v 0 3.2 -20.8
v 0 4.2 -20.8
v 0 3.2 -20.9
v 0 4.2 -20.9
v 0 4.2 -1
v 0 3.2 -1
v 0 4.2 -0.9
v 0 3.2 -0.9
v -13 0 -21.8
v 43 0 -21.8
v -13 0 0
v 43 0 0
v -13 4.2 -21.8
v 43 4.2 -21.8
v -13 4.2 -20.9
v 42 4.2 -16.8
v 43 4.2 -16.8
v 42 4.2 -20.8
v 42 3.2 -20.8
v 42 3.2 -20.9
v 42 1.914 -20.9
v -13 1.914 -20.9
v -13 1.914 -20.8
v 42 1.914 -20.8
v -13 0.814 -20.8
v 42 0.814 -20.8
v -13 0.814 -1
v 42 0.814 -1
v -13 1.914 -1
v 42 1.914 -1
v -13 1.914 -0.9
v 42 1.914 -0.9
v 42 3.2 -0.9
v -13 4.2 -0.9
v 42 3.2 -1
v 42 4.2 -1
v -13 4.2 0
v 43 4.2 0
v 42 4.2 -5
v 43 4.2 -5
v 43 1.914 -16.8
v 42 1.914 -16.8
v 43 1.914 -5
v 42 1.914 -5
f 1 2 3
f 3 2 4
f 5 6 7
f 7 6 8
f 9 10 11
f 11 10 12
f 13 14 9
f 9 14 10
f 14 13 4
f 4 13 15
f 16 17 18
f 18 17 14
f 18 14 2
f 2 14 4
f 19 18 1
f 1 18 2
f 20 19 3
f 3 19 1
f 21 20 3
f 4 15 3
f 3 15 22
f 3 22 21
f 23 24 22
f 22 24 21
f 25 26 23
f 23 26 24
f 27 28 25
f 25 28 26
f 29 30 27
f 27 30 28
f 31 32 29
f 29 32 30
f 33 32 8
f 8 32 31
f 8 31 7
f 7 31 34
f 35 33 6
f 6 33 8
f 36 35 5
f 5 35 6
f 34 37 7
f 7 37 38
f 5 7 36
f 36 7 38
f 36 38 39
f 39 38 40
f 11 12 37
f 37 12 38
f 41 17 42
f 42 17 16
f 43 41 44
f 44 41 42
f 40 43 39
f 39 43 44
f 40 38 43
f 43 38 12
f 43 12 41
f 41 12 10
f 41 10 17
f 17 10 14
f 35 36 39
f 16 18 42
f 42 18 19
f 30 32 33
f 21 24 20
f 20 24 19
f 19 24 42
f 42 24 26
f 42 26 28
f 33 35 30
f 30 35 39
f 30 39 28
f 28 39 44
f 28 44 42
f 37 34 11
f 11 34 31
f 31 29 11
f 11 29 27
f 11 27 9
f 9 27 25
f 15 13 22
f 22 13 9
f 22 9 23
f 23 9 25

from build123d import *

# Parameters (mm, degrees)
BOSS_EXTRUDE1_DEPTH = 42
BOSS_EXTRUDE2_DEPTH = 1
BOSS_EXTRUDE3_DEPTH = 13


with BuildPart() as part:
    # Sketch1 → Boss-Extrude1 (new body)
    with BuildSketch(Plane(origin=(0, 0, 0), x_dir=(0, 0, -1), z_dir=(1, 0, 0))):
        Polygon((0, 4.2), (0, 0), (10.9, 0), (10.9, 0.81375), (1, 0.81375), (1, 1.91375), (0.9, 1.91375), (0.9, 3.2), (1, 3.2), (1, 4.2), align=None)
        Polygon((10.9, 0.81375), (10.9, 0), (21.8, 0), (21.8, 4.2), (20.8, 4.2), (20.8, 3.2), (20.9, 3.2), (20.9, 1.91375), (20.8, 1.91375), (20.8, 0.81375), align=None)
    extrude(amount=BOSS_EXTRUDE1_DEPTH)

    # Sketch2 → Boss-Extrude2 (add)
    with BuildSketch(Plane(origin=(42, 0, 0), x_dir=(0, 0, -1), z_dir=(1, 0, 0))):
        Polygon((0, 0), (21.8, 0), (21.8, 4.2), (16.8, 4.2), (16.8, 1.91375), (5, 1.91375), (5, 4.2), (0, 4.2), align=None)
    extrude(amount=BOSS_EXTRUDE2_DEPTH)

    # Sketch3 → Boss-Extrude3 (add)
    with BuildSketch(Plane.ZY):
        Polygon((-21.8, 4.2), (-21.8, 0), (0, 0), (0, 4.2), (-0.9, 4.2), (-0.9, 1.91375), (-1, 1.91375), (-1, 0.81375), (-20.8, 0.81375), (-20.8, 1.91375), (-20.9, 1.91375), (-20.9, 4.2), align=None)
    extrude(amount=BOSS_EXTRUDE3_DEPTH)


solid = part.part
